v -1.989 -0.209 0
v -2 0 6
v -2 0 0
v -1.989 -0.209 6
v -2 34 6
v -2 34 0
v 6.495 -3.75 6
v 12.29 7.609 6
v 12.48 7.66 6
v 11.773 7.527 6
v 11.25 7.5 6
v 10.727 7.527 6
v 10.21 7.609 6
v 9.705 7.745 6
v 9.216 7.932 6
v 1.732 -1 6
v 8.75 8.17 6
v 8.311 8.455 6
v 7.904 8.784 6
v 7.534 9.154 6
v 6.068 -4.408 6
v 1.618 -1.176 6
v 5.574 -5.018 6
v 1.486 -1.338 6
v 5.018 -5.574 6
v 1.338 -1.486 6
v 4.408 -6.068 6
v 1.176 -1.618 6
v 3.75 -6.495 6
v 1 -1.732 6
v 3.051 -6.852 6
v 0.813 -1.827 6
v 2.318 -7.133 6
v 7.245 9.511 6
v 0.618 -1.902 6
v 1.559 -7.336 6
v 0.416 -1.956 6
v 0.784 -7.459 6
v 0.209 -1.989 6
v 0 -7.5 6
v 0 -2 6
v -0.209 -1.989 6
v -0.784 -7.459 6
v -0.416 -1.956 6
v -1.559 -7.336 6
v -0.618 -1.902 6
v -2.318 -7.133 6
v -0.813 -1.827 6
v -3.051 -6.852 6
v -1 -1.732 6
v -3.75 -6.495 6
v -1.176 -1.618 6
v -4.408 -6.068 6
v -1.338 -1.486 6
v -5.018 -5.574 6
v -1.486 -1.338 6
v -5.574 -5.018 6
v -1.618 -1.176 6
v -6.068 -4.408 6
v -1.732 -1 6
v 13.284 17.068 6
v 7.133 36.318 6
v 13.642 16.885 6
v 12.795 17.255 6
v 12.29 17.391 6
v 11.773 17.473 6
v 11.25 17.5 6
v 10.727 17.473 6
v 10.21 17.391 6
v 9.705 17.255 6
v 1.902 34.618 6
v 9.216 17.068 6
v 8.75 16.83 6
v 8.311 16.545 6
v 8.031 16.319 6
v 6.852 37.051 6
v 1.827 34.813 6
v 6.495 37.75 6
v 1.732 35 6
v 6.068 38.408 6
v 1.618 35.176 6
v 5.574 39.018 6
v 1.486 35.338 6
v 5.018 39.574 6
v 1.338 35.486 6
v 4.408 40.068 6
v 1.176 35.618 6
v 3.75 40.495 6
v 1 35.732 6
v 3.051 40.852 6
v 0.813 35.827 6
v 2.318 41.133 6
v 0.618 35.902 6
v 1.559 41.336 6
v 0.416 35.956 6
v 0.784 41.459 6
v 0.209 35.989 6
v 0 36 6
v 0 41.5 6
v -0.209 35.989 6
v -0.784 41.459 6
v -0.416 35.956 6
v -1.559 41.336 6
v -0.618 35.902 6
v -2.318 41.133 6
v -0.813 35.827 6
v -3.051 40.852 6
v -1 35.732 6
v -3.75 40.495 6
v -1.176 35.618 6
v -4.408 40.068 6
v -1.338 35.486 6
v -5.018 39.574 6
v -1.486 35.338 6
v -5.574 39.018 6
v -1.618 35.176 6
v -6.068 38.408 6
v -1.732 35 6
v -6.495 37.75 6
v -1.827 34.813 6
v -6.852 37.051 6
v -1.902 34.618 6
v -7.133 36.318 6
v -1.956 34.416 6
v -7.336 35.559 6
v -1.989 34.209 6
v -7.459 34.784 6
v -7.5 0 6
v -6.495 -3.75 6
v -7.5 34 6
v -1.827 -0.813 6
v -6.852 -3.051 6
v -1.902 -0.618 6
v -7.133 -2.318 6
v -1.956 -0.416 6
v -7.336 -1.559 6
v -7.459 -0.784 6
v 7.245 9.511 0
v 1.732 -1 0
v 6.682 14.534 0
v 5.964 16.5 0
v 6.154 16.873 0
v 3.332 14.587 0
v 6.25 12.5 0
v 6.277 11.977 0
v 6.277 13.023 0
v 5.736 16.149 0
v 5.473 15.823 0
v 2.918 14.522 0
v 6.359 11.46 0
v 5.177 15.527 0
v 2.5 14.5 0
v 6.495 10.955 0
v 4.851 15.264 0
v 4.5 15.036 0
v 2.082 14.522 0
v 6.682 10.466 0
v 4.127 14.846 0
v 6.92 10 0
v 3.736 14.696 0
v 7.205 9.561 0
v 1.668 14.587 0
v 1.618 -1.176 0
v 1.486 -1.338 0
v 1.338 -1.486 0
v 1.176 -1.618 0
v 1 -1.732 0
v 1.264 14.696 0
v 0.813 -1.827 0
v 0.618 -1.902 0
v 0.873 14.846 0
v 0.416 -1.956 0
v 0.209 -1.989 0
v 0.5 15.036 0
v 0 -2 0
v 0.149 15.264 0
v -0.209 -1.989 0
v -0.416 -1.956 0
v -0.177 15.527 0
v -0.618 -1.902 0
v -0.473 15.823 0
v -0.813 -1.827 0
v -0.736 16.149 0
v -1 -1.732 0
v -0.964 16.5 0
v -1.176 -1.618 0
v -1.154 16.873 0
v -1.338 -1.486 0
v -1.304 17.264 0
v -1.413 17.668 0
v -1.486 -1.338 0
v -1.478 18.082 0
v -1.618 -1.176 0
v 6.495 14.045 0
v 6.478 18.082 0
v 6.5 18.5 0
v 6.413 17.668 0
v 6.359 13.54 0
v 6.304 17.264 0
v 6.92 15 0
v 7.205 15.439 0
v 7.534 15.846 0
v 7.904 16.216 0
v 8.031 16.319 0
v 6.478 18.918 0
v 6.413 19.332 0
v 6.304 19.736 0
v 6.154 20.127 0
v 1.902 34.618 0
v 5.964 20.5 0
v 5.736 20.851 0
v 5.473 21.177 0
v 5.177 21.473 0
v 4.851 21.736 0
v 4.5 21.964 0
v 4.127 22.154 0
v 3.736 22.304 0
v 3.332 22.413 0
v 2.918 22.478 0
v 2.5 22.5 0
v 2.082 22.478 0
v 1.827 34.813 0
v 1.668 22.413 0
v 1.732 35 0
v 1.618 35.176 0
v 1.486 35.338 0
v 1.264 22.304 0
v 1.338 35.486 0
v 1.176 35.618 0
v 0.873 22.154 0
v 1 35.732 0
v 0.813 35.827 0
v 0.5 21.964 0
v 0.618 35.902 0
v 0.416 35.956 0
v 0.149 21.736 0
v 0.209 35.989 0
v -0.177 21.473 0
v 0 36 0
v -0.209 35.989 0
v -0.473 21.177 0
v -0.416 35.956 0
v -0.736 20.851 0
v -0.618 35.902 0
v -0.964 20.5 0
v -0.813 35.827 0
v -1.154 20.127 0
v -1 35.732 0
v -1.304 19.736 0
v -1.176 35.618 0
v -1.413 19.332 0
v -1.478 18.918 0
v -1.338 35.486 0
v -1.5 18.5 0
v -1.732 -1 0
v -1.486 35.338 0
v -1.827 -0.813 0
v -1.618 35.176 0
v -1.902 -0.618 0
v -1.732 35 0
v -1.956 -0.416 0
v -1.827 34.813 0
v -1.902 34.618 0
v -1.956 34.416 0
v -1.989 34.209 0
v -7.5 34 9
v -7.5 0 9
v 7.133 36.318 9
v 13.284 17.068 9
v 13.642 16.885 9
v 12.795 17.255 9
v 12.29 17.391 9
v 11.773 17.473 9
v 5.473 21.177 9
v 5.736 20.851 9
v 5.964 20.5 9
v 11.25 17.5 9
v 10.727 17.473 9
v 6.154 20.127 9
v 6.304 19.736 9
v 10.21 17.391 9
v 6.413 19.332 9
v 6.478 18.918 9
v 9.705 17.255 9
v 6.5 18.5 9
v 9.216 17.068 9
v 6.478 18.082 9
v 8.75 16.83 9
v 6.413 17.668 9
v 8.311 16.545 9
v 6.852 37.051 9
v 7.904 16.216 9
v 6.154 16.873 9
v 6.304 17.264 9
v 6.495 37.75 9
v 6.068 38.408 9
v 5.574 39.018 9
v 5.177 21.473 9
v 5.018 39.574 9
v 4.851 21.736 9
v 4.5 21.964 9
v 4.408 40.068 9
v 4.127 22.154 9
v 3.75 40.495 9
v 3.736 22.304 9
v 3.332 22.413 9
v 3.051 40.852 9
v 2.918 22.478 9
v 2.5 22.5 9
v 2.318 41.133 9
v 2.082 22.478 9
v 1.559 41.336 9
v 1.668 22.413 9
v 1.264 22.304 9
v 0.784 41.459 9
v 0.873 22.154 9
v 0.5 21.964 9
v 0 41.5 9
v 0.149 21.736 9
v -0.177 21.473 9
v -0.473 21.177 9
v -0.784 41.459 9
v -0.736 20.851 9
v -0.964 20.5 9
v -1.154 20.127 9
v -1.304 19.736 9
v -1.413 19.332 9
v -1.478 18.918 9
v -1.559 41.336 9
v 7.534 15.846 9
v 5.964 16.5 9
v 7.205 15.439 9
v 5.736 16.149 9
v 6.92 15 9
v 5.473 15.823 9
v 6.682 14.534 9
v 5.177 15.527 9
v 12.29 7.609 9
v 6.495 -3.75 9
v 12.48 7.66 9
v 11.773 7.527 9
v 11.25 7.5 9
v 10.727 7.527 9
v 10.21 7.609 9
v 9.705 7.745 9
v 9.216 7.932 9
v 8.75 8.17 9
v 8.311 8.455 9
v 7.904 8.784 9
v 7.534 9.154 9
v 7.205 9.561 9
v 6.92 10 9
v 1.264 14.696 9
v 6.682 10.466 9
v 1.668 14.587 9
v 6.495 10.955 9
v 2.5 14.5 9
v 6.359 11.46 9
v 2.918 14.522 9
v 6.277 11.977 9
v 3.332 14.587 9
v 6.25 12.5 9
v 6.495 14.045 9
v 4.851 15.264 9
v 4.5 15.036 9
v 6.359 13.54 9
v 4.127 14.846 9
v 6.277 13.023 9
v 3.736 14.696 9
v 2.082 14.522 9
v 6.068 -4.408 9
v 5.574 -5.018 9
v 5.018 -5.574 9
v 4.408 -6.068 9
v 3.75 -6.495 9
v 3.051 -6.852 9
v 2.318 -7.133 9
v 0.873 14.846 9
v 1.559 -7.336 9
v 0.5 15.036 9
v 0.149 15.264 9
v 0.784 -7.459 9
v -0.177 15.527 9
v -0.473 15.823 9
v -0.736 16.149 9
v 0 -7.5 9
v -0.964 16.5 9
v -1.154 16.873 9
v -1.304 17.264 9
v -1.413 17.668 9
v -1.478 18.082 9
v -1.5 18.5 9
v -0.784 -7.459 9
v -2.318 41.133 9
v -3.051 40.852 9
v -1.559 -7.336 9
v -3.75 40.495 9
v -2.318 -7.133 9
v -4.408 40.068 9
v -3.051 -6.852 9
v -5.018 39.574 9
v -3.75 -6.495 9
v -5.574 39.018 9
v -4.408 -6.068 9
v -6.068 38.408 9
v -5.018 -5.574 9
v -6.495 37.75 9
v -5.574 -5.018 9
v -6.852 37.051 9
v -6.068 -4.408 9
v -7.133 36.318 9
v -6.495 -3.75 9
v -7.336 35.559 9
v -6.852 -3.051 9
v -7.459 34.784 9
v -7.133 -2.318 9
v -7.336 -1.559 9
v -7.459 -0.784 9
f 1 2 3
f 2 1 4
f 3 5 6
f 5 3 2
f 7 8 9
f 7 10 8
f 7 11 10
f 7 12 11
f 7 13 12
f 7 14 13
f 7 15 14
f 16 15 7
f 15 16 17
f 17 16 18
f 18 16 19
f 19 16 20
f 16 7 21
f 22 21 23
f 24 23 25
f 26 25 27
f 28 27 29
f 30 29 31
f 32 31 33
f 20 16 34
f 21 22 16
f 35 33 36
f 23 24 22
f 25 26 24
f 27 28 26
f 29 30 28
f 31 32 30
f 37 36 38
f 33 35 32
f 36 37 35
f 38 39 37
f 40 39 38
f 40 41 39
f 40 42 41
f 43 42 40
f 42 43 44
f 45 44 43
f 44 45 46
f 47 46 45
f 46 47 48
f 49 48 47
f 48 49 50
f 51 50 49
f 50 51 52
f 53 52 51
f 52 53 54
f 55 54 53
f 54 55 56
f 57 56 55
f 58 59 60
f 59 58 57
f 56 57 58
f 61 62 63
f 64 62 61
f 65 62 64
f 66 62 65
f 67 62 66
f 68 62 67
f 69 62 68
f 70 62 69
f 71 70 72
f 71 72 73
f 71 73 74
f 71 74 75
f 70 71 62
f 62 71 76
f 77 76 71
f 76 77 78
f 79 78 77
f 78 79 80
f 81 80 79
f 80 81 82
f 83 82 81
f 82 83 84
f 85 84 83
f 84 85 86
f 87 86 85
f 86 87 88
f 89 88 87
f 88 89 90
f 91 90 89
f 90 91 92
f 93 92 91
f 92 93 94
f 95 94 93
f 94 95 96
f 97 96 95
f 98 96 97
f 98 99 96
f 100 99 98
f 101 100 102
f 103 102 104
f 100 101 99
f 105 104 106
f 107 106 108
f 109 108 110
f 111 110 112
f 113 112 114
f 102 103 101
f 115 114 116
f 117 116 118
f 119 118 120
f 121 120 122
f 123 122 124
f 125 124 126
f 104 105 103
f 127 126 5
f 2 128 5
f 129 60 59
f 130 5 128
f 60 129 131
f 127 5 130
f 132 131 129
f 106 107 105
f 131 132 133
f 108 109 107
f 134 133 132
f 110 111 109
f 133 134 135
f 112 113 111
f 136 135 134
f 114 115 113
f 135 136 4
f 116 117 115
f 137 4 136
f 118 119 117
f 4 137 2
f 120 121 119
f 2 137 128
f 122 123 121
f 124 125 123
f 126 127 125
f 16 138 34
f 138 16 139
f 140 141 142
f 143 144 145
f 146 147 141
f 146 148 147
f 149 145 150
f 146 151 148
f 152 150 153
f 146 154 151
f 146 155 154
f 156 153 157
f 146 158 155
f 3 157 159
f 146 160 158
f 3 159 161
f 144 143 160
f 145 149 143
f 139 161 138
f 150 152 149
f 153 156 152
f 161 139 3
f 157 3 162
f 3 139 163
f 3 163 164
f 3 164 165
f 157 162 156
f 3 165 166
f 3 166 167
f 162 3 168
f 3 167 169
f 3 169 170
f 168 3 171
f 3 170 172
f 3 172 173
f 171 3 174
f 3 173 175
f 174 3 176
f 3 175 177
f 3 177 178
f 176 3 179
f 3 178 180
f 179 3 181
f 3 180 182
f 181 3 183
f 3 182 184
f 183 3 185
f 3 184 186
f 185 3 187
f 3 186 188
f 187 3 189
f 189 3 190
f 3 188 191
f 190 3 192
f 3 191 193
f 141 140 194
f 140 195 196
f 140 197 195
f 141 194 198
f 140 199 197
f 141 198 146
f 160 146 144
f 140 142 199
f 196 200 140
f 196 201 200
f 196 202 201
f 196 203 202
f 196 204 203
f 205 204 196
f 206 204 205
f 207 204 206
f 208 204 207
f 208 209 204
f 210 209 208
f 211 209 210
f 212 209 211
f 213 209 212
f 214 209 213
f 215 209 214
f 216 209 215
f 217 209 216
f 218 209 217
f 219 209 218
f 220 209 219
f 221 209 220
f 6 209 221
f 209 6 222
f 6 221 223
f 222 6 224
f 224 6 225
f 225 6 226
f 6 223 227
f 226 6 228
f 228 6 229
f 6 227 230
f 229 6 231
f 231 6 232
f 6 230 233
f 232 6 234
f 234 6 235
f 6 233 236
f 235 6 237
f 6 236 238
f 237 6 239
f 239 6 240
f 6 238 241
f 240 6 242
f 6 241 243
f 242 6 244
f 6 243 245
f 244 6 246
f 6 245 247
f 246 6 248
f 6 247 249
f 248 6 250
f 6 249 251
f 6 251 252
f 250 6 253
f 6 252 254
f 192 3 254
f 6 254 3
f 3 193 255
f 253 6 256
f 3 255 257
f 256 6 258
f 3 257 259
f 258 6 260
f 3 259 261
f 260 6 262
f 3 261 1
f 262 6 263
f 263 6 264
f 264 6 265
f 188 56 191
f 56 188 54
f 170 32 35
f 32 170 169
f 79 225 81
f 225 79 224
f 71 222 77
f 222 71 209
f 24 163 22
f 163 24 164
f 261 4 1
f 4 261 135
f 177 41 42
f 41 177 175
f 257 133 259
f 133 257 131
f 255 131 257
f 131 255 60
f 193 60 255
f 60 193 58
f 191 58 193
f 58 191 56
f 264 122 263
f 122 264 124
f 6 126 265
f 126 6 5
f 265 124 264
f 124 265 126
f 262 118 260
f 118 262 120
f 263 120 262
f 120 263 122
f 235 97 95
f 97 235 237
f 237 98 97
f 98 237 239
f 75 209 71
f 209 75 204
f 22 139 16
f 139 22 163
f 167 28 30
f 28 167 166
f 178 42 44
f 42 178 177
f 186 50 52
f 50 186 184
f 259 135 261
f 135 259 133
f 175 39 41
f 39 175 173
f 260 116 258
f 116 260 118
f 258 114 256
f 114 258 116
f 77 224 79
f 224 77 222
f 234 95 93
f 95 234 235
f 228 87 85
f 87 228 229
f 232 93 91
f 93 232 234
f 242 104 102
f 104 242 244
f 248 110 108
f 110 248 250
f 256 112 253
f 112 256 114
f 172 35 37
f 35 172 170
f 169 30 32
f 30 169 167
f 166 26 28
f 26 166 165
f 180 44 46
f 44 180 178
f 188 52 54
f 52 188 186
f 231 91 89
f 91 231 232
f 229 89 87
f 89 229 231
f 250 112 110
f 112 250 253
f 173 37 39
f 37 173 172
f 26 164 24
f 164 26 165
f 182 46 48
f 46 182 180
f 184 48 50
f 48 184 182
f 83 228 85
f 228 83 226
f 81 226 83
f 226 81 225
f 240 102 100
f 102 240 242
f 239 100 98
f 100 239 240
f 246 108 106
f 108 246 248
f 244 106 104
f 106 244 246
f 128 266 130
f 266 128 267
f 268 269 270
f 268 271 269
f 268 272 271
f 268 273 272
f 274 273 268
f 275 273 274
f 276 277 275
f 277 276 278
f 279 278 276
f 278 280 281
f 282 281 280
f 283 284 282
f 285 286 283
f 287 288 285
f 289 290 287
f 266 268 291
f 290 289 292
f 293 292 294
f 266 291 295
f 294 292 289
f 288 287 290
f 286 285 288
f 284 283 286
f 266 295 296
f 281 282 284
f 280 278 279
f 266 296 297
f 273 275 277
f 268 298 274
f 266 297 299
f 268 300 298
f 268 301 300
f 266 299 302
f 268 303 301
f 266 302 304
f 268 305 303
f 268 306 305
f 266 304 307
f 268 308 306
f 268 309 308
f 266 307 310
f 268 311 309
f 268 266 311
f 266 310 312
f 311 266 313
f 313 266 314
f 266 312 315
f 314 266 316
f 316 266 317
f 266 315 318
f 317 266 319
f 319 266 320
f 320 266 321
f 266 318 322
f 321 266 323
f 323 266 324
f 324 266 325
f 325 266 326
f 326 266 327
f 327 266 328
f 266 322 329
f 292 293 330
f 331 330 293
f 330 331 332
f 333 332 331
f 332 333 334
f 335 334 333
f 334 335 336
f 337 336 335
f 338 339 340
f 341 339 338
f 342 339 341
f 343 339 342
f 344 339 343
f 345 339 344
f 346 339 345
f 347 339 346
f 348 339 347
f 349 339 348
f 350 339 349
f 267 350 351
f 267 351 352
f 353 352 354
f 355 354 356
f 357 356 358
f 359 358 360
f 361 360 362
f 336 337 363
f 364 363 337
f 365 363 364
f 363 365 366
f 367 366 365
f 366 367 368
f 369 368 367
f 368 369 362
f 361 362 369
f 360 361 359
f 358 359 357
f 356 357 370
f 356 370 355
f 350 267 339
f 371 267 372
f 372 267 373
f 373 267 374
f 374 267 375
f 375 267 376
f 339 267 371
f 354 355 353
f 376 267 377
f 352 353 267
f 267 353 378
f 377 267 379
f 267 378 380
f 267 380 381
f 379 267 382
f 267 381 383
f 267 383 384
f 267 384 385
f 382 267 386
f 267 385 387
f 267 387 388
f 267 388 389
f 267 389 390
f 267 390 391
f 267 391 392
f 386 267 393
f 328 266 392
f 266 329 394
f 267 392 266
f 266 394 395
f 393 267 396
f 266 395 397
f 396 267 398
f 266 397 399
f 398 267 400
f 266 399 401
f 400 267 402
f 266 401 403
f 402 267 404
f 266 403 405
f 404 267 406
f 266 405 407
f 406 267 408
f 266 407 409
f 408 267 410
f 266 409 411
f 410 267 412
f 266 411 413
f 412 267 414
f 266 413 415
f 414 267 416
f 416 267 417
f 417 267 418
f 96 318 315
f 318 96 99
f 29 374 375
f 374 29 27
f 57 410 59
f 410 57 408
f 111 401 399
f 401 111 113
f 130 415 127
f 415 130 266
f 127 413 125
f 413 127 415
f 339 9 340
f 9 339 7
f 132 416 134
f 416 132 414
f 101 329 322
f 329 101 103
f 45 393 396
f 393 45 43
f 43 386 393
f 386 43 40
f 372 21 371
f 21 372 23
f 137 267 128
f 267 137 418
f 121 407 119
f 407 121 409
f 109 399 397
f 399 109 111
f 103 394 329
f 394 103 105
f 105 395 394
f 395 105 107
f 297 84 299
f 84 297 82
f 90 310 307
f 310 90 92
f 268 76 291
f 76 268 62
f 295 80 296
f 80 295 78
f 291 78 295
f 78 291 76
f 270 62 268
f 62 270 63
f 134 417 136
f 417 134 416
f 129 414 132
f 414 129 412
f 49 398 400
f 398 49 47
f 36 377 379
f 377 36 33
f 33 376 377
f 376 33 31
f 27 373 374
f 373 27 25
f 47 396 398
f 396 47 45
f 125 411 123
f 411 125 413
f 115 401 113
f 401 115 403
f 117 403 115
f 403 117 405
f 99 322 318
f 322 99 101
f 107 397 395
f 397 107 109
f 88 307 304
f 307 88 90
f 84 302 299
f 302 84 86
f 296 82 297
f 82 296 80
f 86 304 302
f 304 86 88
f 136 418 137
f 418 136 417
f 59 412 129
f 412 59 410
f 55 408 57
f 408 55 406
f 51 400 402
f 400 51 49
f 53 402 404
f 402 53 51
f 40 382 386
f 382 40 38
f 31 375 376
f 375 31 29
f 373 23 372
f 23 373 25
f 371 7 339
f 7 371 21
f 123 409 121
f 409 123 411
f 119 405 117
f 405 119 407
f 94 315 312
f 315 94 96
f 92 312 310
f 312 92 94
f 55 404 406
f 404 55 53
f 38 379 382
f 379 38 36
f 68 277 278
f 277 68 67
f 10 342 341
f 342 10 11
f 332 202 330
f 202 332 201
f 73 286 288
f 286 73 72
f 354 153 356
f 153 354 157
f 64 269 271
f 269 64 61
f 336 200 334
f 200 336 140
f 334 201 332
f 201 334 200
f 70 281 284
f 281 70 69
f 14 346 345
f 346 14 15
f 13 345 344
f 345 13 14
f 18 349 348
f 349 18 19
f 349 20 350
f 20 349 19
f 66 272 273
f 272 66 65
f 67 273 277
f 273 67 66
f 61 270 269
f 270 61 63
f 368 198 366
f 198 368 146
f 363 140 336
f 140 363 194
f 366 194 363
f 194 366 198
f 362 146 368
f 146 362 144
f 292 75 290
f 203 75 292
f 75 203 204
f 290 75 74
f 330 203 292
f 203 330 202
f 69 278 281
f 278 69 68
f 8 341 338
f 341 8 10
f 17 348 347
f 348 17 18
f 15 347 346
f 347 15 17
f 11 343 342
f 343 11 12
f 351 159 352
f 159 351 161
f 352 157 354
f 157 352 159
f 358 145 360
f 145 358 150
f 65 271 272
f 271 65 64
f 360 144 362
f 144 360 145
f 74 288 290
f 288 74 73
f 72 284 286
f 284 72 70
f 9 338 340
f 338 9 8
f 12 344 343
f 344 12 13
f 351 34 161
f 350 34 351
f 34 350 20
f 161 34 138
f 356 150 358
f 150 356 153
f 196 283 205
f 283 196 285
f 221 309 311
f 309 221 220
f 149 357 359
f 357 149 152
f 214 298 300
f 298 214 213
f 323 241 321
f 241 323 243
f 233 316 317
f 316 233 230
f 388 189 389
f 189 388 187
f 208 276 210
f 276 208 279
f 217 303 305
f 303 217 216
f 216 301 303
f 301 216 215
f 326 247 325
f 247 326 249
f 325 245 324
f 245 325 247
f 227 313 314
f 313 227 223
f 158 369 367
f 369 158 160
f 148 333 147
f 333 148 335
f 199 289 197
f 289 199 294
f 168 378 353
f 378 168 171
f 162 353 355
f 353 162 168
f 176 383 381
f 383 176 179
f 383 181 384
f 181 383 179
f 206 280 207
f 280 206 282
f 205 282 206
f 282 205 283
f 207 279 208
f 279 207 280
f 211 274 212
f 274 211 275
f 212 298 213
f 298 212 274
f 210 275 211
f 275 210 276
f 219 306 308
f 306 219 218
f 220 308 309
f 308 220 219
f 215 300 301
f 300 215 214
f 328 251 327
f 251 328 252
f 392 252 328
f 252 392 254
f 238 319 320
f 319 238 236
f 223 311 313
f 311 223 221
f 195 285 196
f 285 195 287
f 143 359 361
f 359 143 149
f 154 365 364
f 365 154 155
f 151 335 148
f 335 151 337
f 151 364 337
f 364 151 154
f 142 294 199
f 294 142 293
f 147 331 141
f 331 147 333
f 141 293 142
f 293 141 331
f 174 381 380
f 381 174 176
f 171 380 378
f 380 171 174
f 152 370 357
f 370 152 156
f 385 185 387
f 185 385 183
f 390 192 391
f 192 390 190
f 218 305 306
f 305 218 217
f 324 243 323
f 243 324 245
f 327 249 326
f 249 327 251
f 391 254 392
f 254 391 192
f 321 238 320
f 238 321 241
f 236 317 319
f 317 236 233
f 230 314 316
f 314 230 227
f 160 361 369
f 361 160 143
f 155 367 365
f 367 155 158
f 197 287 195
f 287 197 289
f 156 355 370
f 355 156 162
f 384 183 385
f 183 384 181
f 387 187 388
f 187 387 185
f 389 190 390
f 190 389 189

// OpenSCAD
dia=4;
thick=6;

$fn=60;




difference(){
    union() {
        triangleA(t=thick,d=dia);
        translate([0,0,thick]) triangleA(t=3,d=15);
    }
    translate([15.25-4,11-2+3.5,0]) cylinder(h=thick*2,d=10);
    translate([2.5,18.5,0]) cylinder(h=thick*2,d=8);
}


module triangleA(t=6,d=4) {
    hull() {
        //The cutouts are have rounded inner corners, diameter 4mm
        cylinder(h=t,d=d);
        translate([0,38-(2*dia)/2,0]) cylinder(h=t,d=d); //(take of twice the radius or 1 time the diameter)
        translate([8.95-2,15.25-2,0]) cylinder(h=t,d=d);
   }
}
